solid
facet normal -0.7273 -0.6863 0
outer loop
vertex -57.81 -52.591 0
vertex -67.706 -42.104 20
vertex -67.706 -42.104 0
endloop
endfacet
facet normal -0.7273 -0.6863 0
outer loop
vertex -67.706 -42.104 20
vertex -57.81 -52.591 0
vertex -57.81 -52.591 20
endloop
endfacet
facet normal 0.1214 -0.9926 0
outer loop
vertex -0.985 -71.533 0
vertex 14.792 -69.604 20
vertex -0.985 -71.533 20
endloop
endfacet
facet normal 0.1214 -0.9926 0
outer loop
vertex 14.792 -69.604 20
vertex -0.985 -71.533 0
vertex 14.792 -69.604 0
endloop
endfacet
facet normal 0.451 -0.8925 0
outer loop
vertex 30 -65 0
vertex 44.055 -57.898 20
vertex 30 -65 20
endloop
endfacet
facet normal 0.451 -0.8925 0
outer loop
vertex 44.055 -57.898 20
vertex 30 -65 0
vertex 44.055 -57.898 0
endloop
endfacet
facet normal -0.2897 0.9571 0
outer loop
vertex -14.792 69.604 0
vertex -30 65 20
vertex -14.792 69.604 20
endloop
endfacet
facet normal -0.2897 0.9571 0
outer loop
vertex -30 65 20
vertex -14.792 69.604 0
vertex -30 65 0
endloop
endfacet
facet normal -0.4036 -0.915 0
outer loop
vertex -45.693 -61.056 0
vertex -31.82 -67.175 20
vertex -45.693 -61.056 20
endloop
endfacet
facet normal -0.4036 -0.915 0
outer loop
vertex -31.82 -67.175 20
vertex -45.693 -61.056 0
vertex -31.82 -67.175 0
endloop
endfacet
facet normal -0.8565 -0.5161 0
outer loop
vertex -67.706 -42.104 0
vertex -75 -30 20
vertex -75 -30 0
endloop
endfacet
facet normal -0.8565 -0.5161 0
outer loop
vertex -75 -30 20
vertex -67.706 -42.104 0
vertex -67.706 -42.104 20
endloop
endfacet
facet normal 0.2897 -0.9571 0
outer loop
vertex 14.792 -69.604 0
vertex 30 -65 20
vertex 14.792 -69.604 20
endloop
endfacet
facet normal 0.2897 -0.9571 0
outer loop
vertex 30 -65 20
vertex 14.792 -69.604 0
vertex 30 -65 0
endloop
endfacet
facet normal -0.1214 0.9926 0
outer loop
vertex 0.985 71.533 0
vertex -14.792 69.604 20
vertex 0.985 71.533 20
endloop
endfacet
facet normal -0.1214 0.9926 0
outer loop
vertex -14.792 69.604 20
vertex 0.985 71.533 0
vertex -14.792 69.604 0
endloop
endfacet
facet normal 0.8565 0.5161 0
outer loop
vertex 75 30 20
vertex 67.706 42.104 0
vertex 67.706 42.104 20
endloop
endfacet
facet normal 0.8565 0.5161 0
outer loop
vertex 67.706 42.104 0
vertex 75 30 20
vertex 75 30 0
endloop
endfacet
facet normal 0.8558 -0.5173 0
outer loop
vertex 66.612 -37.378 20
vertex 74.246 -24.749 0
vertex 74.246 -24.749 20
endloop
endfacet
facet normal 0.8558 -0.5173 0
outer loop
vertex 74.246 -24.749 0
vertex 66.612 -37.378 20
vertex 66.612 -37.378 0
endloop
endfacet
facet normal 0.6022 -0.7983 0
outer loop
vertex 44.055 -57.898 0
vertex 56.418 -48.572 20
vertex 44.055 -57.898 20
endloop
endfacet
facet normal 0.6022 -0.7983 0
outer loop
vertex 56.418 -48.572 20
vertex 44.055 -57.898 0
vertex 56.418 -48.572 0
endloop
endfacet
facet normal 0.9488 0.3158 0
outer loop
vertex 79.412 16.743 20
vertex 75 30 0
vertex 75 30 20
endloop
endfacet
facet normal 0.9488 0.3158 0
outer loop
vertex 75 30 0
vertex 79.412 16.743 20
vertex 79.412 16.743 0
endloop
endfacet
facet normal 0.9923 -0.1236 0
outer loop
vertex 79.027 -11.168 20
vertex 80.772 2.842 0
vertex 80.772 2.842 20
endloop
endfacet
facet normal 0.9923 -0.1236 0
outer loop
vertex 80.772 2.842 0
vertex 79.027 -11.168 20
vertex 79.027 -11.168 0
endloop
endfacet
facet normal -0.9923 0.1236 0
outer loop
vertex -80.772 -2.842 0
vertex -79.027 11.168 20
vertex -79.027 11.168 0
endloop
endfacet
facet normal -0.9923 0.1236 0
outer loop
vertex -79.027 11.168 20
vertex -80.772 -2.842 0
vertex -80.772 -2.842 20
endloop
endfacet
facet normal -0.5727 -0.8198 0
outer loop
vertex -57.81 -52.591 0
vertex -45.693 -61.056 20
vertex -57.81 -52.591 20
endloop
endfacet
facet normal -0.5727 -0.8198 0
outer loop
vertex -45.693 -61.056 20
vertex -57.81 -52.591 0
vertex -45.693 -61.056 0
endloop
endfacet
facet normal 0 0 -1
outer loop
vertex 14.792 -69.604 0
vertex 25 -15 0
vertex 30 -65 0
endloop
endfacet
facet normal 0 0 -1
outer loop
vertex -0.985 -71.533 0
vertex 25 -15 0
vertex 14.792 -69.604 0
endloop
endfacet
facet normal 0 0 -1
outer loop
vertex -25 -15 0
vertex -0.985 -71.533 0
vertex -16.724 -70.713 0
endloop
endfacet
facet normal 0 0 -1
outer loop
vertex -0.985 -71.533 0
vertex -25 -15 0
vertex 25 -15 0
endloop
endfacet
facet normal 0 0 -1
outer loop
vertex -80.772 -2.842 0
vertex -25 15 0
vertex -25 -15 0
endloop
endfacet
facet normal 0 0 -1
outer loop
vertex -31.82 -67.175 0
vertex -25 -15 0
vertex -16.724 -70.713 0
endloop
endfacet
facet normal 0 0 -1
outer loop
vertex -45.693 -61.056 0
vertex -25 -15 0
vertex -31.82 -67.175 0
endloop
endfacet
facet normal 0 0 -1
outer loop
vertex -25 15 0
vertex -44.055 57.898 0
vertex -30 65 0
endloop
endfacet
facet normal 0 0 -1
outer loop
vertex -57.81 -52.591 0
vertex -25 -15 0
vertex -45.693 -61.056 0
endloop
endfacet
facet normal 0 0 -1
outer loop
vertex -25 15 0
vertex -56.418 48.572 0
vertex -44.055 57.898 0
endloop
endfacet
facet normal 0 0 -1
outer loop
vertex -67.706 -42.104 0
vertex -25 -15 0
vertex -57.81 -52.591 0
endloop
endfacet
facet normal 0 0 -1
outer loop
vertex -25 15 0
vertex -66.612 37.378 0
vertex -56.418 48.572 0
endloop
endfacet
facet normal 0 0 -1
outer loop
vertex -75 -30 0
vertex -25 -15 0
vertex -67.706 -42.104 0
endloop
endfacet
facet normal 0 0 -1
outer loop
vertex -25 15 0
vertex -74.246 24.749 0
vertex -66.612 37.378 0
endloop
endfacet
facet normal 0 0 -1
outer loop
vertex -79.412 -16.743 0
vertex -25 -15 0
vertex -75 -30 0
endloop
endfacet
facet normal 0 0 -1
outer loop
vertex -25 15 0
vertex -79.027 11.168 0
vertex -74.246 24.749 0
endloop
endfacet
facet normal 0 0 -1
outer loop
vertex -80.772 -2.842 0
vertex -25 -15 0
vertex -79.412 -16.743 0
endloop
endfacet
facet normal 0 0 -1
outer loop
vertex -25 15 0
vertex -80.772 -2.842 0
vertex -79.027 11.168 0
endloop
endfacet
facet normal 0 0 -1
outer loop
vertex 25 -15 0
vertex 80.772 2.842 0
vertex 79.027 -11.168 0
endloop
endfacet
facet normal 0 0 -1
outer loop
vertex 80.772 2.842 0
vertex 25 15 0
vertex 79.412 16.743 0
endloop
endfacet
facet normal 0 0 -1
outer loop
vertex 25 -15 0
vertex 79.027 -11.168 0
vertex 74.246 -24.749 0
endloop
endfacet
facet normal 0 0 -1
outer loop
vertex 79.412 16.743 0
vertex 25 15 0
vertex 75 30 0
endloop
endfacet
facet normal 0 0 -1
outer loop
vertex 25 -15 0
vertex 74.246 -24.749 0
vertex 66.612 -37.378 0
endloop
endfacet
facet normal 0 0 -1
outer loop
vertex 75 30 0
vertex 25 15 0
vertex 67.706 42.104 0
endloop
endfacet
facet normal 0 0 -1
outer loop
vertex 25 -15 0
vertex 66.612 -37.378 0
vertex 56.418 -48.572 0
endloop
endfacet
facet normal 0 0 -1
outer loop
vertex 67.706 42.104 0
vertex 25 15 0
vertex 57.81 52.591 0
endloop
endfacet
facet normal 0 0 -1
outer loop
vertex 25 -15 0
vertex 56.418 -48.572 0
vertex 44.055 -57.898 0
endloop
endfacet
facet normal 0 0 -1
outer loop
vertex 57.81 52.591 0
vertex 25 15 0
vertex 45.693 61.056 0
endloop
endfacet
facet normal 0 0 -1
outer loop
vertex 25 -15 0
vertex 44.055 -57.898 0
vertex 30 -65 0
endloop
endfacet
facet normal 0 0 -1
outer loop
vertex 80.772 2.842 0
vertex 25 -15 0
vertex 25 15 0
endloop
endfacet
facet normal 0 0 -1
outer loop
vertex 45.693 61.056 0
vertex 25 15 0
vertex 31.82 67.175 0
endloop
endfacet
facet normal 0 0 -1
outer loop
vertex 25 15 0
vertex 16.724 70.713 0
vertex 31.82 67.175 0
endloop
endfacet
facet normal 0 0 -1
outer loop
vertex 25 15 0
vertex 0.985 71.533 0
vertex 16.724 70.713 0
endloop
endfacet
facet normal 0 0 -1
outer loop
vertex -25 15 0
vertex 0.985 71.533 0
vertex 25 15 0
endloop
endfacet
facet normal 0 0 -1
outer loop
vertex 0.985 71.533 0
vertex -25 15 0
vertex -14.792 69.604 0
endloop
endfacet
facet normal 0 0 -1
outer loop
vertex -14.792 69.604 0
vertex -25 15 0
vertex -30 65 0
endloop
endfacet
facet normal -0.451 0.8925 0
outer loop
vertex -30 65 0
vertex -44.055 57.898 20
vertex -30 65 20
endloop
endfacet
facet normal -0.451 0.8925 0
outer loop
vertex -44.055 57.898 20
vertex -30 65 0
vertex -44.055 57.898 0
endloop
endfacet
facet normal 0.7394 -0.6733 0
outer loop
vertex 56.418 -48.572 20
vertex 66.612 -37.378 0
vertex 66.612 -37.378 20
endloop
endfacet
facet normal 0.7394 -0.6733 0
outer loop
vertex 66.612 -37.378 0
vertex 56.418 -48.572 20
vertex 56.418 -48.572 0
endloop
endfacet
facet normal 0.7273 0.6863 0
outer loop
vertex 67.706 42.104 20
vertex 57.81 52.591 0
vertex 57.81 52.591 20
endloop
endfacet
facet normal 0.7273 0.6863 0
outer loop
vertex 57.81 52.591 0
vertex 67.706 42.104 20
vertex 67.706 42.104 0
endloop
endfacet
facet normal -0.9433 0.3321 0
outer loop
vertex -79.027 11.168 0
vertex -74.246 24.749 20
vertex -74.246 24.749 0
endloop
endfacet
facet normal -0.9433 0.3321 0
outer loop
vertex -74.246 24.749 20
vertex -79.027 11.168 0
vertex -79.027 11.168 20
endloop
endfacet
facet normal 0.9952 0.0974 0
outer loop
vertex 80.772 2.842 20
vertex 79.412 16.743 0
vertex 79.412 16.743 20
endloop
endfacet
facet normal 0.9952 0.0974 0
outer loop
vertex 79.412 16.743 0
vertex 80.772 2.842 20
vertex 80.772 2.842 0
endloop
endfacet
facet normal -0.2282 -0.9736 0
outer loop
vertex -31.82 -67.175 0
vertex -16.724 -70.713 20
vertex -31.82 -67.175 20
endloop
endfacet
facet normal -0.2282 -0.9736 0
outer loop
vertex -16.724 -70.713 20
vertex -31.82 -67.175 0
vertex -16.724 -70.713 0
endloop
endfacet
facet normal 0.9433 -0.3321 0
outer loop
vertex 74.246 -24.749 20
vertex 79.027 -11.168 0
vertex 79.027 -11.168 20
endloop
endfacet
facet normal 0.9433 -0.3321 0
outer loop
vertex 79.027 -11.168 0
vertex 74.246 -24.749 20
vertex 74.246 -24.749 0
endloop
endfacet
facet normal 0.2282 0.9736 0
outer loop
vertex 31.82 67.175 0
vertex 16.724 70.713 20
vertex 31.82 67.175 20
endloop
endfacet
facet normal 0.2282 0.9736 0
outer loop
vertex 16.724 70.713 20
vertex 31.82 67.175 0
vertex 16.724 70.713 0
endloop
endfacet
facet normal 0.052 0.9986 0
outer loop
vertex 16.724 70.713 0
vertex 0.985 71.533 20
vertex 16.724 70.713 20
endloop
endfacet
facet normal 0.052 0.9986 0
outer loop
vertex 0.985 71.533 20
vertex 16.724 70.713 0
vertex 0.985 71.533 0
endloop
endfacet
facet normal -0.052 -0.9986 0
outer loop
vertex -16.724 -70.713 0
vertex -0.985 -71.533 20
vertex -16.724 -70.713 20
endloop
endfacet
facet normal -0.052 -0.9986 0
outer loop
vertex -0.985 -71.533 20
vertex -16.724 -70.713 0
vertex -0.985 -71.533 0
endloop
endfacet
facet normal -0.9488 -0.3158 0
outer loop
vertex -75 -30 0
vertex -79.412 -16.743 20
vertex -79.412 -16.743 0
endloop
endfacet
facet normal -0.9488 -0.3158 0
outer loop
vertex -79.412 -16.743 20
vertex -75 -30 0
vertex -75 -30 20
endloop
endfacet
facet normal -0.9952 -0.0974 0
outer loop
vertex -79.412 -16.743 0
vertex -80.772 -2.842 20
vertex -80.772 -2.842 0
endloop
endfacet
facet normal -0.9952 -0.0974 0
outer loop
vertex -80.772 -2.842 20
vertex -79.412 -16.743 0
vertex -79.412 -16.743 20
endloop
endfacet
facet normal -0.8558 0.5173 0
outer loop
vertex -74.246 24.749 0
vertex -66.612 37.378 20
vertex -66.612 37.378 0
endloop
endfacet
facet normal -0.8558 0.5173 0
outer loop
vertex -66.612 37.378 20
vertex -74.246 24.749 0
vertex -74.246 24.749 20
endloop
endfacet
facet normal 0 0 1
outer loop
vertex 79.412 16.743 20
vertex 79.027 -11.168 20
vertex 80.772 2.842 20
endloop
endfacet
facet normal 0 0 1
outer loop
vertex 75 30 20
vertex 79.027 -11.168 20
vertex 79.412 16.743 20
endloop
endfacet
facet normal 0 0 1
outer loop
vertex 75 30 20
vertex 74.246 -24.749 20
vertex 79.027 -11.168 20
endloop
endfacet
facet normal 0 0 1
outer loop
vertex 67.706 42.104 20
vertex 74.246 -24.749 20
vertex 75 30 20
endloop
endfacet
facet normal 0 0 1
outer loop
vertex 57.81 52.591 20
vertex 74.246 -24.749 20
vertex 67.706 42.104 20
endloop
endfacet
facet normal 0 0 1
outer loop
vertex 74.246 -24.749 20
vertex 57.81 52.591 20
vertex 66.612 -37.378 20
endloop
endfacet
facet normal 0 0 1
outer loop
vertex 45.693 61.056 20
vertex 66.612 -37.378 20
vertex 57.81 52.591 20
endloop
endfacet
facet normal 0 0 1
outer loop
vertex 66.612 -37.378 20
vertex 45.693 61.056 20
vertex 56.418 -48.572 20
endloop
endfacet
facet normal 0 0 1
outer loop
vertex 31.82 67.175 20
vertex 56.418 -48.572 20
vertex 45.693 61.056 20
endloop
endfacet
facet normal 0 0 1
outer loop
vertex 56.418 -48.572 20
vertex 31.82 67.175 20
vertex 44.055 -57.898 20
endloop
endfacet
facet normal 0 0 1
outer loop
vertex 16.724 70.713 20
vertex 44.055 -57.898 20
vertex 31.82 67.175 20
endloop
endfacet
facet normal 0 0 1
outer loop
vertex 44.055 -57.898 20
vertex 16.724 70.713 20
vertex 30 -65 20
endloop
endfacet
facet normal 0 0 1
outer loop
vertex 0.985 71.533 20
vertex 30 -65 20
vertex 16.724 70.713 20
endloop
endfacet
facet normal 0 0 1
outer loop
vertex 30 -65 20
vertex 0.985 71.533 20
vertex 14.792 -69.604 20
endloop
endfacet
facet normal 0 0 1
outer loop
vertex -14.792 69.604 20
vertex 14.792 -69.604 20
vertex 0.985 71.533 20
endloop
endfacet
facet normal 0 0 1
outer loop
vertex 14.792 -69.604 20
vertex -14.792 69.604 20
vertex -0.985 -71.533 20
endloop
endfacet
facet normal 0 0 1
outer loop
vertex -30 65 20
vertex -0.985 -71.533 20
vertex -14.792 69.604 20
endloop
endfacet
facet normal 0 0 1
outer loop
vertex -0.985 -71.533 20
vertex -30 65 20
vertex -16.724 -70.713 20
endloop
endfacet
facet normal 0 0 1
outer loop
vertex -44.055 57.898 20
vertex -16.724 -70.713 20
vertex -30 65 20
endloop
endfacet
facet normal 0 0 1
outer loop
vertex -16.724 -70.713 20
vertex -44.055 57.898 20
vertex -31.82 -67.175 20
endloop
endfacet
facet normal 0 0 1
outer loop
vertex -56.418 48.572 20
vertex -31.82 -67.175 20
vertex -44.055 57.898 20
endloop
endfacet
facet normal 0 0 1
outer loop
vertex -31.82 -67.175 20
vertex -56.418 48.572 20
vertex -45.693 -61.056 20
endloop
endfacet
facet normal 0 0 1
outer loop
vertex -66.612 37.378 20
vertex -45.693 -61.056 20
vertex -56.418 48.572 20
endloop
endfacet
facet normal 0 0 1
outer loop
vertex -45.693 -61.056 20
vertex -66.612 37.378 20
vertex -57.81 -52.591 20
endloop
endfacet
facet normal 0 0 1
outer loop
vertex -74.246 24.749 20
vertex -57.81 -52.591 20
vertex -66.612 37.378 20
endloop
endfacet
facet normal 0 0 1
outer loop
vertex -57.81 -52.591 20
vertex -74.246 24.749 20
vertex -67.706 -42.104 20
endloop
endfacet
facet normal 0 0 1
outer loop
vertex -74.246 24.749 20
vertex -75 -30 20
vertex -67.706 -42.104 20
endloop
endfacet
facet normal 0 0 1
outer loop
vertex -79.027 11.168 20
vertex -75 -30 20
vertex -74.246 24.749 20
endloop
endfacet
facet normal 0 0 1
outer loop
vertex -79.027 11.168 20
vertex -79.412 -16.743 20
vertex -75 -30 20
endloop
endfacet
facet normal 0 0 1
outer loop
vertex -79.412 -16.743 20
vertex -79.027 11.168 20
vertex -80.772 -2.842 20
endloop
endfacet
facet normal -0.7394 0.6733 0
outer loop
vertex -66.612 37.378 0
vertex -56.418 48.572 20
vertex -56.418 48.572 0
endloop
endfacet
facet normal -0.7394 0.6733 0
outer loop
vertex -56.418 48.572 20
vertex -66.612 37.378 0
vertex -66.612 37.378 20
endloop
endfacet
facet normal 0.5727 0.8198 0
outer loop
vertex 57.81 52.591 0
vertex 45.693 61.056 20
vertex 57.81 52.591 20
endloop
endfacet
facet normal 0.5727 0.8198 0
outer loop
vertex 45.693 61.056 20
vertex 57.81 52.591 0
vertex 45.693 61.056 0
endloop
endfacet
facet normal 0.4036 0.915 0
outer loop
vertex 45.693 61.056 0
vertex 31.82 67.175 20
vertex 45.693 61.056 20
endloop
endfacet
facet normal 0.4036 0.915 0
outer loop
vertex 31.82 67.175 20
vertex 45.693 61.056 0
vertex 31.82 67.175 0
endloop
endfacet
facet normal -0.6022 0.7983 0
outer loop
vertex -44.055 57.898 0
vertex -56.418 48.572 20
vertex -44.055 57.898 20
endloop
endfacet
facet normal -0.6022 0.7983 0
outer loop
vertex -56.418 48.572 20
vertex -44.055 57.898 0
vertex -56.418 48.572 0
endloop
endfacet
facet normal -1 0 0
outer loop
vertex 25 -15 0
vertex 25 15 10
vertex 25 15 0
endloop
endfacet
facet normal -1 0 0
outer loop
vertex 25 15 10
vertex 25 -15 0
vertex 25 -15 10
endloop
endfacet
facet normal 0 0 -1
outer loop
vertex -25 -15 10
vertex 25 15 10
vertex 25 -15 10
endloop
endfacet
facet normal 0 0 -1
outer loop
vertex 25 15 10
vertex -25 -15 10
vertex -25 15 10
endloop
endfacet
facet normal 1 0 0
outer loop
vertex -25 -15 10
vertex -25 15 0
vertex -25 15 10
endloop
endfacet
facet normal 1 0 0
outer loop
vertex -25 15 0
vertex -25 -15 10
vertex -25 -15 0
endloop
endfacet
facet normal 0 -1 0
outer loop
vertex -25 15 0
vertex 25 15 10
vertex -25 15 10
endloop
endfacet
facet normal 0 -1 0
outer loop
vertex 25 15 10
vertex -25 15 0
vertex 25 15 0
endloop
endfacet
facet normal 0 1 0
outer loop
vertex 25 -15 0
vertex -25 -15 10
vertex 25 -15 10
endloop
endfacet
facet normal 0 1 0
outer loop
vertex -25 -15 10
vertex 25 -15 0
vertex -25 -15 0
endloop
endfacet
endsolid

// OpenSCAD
module arch(width, height, depth, radius, segments = 32) {
  difference() {
    hull() {
      for (i = [0:segments]) {
        angle = i * 360 / segments;
        translate([cos(angle) * width / 2, sin(angle) * height / 2, 0])
        rotate([0, 0, angle])
        cube([width, height, depth]);
      }
    }

    // Cut out the arch shape
    translate([0, 0, -0.1])
    cube([width, height, depth + 0.2], center = true);
  }
}

arch(width = 50, height = 30, depth = 20, radius = 15);
